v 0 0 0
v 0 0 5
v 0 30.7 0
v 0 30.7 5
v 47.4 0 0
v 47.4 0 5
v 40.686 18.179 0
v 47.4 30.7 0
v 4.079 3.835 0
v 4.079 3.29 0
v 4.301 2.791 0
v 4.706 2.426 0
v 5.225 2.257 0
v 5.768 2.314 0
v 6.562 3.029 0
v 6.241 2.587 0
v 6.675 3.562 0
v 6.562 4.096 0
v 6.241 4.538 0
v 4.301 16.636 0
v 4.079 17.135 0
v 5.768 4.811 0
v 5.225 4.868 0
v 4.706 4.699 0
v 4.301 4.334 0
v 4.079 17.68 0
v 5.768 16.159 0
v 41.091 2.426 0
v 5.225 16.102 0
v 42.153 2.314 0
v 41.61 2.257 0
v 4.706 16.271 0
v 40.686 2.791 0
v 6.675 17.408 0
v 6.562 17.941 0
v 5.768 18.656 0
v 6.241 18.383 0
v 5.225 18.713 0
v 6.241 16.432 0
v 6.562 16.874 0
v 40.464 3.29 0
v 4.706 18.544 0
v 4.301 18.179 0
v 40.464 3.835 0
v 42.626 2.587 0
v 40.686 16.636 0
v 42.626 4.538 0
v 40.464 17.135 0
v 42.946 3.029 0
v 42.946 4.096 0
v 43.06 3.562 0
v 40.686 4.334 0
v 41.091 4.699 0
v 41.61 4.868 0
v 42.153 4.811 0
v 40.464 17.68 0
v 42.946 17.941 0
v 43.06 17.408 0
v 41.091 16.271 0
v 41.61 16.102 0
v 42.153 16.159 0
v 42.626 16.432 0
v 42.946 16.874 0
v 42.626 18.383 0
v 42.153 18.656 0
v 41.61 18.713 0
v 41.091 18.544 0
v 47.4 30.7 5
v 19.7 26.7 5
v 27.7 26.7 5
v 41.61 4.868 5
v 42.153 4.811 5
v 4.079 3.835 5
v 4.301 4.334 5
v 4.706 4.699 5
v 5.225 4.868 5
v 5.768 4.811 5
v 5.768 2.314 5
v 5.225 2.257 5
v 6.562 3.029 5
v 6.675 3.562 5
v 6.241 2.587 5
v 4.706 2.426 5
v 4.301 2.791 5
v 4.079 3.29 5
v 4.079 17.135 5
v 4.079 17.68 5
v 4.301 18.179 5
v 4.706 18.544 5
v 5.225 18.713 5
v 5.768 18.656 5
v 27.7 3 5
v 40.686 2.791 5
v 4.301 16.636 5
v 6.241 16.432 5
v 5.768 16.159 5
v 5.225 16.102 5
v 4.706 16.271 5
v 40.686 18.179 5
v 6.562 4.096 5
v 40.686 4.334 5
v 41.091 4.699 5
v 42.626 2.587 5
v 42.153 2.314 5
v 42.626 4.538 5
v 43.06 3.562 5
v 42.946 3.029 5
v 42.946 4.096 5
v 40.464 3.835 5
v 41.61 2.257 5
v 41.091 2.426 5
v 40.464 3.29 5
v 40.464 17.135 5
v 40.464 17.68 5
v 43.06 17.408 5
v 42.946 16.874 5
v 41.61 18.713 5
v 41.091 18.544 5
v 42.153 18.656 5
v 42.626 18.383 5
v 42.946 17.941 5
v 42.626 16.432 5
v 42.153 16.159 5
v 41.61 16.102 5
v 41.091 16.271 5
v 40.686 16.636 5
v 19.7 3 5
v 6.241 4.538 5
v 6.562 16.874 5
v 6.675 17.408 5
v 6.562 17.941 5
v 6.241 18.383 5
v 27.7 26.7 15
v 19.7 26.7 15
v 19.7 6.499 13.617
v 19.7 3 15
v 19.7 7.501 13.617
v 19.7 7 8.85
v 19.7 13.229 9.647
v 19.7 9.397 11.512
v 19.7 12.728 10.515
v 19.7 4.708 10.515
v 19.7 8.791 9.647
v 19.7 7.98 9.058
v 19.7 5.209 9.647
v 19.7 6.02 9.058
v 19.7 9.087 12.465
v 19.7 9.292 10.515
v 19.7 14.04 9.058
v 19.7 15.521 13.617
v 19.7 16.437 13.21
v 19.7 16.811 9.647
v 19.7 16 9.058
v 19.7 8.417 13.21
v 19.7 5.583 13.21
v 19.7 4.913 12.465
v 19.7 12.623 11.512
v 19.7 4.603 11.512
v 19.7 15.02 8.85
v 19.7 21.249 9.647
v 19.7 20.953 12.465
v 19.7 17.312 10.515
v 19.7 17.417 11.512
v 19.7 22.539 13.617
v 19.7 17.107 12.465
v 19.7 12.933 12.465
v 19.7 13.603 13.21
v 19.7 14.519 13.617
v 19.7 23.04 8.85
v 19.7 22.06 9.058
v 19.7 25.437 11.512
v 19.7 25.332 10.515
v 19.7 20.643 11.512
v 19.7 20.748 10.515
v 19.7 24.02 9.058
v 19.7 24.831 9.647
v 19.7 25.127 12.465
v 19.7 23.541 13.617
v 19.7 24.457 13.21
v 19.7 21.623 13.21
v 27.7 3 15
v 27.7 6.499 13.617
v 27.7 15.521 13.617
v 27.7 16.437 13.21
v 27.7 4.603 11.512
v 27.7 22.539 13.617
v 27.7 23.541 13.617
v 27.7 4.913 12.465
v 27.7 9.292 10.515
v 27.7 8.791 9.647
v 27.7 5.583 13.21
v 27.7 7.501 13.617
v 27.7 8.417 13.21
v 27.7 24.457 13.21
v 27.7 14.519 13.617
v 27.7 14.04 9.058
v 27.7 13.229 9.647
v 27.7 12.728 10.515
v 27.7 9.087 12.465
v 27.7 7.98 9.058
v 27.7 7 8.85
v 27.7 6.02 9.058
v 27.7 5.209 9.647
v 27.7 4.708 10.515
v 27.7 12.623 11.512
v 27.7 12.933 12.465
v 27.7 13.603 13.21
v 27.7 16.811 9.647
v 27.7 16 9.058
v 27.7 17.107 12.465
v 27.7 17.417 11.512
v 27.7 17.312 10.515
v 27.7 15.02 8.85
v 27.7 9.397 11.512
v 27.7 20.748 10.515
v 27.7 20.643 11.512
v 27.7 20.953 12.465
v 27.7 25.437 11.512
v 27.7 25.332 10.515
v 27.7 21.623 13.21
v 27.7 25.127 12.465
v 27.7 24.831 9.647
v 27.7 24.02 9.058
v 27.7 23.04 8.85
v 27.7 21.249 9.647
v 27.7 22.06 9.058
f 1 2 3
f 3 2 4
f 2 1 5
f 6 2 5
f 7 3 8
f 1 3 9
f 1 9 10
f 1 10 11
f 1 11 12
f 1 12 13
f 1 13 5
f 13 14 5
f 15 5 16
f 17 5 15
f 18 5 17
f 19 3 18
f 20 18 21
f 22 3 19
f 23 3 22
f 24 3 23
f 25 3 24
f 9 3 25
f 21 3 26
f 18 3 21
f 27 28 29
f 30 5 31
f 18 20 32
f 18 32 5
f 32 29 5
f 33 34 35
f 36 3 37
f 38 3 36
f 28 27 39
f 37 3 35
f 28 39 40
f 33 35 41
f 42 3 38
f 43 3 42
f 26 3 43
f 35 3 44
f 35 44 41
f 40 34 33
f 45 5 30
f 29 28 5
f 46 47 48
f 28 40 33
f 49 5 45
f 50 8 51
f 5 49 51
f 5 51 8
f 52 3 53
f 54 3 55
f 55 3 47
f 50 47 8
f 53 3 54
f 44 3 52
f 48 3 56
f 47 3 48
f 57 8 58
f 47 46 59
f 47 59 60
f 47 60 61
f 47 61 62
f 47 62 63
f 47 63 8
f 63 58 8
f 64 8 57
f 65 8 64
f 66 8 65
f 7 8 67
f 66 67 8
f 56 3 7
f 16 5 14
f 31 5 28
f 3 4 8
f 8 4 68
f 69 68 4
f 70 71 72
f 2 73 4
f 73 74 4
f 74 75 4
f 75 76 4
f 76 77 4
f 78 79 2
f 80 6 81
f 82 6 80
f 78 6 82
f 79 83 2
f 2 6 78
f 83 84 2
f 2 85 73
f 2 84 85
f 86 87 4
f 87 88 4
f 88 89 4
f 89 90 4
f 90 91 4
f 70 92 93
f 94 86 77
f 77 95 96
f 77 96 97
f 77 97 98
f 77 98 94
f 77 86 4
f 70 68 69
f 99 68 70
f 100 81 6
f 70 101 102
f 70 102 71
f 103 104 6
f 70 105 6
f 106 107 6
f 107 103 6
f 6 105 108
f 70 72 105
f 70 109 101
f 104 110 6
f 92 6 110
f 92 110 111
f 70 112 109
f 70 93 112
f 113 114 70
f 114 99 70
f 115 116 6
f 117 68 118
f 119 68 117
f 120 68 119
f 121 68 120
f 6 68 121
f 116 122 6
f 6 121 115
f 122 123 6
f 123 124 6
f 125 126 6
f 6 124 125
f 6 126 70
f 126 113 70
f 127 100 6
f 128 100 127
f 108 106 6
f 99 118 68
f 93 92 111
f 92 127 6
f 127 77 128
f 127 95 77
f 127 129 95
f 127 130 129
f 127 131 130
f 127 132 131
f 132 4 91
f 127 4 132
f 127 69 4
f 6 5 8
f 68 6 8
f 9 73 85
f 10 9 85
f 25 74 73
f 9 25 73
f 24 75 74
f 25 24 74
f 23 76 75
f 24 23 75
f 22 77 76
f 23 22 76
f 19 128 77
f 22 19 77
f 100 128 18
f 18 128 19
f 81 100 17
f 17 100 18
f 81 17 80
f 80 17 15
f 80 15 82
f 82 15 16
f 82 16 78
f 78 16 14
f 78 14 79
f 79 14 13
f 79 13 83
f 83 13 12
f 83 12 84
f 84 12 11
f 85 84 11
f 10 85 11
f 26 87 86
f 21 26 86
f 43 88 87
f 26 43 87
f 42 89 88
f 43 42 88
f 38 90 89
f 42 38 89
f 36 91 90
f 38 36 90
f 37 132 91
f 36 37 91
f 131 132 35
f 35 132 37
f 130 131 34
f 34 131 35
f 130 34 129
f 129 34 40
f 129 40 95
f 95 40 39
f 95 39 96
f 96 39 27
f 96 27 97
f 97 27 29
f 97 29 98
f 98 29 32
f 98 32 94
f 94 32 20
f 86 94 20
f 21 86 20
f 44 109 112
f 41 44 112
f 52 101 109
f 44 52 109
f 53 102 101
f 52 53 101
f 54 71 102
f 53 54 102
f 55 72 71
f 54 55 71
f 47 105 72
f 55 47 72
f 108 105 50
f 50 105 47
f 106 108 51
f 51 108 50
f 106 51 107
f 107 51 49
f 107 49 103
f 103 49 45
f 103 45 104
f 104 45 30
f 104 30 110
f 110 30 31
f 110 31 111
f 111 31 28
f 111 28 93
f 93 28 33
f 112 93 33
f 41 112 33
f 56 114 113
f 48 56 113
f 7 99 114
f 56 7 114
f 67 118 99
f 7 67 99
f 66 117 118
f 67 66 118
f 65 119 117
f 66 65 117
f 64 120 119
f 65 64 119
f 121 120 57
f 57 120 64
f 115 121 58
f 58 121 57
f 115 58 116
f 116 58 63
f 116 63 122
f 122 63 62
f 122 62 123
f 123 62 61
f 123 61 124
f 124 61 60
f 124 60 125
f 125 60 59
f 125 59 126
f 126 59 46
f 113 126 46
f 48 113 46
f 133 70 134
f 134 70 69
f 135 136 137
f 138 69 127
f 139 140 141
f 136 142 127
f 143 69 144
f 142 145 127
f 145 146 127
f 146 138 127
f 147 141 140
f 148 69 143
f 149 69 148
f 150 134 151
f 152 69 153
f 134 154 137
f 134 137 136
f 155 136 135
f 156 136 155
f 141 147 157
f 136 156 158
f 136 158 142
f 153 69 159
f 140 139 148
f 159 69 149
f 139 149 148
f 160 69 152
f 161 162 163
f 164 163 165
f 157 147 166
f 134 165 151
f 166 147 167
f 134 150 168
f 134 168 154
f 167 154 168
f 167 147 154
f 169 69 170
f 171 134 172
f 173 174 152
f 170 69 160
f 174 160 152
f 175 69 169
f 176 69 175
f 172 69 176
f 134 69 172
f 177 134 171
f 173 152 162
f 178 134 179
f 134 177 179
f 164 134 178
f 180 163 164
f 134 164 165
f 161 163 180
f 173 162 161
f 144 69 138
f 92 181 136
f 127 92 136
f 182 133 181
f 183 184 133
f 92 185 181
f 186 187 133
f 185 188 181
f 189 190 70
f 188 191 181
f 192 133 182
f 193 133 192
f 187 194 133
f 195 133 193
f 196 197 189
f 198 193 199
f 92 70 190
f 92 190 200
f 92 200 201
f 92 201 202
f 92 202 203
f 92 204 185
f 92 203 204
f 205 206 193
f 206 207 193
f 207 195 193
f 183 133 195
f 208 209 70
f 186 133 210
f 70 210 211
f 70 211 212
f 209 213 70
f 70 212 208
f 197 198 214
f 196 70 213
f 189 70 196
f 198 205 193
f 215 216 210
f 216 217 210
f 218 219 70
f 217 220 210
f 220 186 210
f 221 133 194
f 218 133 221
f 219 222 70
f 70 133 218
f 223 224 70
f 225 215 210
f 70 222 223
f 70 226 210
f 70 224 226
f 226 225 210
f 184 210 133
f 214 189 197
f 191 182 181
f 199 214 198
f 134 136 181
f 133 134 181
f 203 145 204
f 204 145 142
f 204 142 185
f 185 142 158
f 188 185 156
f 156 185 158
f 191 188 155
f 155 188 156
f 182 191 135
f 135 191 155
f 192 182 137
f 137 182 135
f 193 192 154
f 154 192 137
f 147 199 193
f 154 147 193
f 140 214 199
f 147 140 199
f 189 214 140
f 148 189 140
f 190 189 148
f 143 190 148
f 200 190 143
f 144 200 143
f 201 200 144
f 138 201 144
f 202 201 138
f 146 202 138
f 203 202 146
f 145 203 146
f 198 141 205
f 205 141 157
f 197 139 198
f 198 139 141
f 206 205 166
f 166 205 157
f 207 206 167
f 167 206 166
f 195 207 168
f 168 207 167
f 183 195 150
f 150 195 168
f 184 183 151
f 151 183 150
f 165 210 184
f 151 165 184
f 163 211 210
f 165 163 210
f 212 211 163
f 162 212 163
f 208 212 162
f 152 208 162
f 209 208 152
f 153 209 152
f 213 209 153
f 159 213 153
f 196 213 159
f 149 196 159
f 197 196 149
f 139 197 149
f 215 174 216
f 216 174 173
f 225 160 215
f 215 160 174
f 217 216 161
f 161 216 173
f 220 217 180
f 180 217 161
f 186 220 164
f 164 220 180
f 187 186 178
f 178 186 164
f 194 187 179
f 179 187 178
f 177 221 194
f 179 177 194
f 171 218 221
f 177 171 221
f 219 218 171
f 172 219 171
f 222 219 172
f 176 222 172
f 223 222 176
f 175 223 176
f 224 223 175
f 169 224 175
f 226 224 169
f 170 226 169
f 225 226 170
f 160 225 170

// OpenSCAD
latime = 47.4;
lungime = 30.7;
inaltime = 15;
latime_parte_centrala = 8;
cut_size = (latime-latime_parte_centrala)/2;
inaltime_parte_centrala = 10;

grosime_surub = 2.625/2;
poz_surub_x = 4.05;
poz_surub_y = 2.25;
distanta_surub_x = 33.76;
distanta_surub_y = 11.22;

grosime_surub_lego = 4.82/2;
poz_surub_lego_x = 7;
distante_surub_lego = 3.2 +2*grosime_surub_lego;
inaltime_surub_lego = inaltime - grosime_surub_lego - 1.33;
difference(){
  cube([latime, lungime, inaltime]);
	translate([0,0,inaltime-inaltime_parte_centrala])
	cube([cut_size,lungime, inaltime_parte_centrala]);
	translate([latime-cut_size,0,inaltime-inaltime_parte_centrala])
	cube([cut_size,lungime, inaltime_parte_centrala]);

	translate([poz_surub_x+grosime_surub, poz_surub_y+grosime_surub,0])
	cylinder(h = 10, r=grosime_surub, $fn=15);
	translate([poz_surub_x+grosime_surub, poz_surub_y+3*grosime_surub+distanta_surub_y,0])
	cylinder(h = 10, r=grosime_surub,$fn=15);
	translate([poz_surub_x+3*grosime_surub+distanta_surub_x,  poz_surub_y+grosime_surub,0])
	cylinder(h = 10, r=grosime_surub, $fn=15);
	translate([poz_surub_x+3*grosime_surub+distanta_surub_x, poz_surub_y+3*grosime_surub+distanta_surub_y,0])
	cylinder(h = 10, r=grosime_surub,$fn=15);

	rotate([0,90,0])
	translate([-inaltime_surub_lego,poz_surub_lego_x,0])
	cylinder(h = 100, r=grosime_surub_lego,$fn=15);
	rotate([0,90,0])
	translate([-inaltime_surub_lego,poz_surub_lego_x + distante_surub_lego,0])
	cylinder(h = 100, r=grosime_surub_lego,$fn=15);
	rotate([0,90,0])
	translate([-inaltime_surub_lego,poz_surub_lego_x + 2*distante_surub_lego,0])
	cylinder(h = 100, r=grosime_surub_lego,$fn=15);

	translate([cut_size-1,0,inaltime-inaltime_parte_centrala])
	cube([10,3, inaltime_parte_centrala]);
	translate([cut_size-1,lungime-4,inaltime-inaltime_parte_centrala])
	cube([10,4, inaltime_parte_centrala]);
}
